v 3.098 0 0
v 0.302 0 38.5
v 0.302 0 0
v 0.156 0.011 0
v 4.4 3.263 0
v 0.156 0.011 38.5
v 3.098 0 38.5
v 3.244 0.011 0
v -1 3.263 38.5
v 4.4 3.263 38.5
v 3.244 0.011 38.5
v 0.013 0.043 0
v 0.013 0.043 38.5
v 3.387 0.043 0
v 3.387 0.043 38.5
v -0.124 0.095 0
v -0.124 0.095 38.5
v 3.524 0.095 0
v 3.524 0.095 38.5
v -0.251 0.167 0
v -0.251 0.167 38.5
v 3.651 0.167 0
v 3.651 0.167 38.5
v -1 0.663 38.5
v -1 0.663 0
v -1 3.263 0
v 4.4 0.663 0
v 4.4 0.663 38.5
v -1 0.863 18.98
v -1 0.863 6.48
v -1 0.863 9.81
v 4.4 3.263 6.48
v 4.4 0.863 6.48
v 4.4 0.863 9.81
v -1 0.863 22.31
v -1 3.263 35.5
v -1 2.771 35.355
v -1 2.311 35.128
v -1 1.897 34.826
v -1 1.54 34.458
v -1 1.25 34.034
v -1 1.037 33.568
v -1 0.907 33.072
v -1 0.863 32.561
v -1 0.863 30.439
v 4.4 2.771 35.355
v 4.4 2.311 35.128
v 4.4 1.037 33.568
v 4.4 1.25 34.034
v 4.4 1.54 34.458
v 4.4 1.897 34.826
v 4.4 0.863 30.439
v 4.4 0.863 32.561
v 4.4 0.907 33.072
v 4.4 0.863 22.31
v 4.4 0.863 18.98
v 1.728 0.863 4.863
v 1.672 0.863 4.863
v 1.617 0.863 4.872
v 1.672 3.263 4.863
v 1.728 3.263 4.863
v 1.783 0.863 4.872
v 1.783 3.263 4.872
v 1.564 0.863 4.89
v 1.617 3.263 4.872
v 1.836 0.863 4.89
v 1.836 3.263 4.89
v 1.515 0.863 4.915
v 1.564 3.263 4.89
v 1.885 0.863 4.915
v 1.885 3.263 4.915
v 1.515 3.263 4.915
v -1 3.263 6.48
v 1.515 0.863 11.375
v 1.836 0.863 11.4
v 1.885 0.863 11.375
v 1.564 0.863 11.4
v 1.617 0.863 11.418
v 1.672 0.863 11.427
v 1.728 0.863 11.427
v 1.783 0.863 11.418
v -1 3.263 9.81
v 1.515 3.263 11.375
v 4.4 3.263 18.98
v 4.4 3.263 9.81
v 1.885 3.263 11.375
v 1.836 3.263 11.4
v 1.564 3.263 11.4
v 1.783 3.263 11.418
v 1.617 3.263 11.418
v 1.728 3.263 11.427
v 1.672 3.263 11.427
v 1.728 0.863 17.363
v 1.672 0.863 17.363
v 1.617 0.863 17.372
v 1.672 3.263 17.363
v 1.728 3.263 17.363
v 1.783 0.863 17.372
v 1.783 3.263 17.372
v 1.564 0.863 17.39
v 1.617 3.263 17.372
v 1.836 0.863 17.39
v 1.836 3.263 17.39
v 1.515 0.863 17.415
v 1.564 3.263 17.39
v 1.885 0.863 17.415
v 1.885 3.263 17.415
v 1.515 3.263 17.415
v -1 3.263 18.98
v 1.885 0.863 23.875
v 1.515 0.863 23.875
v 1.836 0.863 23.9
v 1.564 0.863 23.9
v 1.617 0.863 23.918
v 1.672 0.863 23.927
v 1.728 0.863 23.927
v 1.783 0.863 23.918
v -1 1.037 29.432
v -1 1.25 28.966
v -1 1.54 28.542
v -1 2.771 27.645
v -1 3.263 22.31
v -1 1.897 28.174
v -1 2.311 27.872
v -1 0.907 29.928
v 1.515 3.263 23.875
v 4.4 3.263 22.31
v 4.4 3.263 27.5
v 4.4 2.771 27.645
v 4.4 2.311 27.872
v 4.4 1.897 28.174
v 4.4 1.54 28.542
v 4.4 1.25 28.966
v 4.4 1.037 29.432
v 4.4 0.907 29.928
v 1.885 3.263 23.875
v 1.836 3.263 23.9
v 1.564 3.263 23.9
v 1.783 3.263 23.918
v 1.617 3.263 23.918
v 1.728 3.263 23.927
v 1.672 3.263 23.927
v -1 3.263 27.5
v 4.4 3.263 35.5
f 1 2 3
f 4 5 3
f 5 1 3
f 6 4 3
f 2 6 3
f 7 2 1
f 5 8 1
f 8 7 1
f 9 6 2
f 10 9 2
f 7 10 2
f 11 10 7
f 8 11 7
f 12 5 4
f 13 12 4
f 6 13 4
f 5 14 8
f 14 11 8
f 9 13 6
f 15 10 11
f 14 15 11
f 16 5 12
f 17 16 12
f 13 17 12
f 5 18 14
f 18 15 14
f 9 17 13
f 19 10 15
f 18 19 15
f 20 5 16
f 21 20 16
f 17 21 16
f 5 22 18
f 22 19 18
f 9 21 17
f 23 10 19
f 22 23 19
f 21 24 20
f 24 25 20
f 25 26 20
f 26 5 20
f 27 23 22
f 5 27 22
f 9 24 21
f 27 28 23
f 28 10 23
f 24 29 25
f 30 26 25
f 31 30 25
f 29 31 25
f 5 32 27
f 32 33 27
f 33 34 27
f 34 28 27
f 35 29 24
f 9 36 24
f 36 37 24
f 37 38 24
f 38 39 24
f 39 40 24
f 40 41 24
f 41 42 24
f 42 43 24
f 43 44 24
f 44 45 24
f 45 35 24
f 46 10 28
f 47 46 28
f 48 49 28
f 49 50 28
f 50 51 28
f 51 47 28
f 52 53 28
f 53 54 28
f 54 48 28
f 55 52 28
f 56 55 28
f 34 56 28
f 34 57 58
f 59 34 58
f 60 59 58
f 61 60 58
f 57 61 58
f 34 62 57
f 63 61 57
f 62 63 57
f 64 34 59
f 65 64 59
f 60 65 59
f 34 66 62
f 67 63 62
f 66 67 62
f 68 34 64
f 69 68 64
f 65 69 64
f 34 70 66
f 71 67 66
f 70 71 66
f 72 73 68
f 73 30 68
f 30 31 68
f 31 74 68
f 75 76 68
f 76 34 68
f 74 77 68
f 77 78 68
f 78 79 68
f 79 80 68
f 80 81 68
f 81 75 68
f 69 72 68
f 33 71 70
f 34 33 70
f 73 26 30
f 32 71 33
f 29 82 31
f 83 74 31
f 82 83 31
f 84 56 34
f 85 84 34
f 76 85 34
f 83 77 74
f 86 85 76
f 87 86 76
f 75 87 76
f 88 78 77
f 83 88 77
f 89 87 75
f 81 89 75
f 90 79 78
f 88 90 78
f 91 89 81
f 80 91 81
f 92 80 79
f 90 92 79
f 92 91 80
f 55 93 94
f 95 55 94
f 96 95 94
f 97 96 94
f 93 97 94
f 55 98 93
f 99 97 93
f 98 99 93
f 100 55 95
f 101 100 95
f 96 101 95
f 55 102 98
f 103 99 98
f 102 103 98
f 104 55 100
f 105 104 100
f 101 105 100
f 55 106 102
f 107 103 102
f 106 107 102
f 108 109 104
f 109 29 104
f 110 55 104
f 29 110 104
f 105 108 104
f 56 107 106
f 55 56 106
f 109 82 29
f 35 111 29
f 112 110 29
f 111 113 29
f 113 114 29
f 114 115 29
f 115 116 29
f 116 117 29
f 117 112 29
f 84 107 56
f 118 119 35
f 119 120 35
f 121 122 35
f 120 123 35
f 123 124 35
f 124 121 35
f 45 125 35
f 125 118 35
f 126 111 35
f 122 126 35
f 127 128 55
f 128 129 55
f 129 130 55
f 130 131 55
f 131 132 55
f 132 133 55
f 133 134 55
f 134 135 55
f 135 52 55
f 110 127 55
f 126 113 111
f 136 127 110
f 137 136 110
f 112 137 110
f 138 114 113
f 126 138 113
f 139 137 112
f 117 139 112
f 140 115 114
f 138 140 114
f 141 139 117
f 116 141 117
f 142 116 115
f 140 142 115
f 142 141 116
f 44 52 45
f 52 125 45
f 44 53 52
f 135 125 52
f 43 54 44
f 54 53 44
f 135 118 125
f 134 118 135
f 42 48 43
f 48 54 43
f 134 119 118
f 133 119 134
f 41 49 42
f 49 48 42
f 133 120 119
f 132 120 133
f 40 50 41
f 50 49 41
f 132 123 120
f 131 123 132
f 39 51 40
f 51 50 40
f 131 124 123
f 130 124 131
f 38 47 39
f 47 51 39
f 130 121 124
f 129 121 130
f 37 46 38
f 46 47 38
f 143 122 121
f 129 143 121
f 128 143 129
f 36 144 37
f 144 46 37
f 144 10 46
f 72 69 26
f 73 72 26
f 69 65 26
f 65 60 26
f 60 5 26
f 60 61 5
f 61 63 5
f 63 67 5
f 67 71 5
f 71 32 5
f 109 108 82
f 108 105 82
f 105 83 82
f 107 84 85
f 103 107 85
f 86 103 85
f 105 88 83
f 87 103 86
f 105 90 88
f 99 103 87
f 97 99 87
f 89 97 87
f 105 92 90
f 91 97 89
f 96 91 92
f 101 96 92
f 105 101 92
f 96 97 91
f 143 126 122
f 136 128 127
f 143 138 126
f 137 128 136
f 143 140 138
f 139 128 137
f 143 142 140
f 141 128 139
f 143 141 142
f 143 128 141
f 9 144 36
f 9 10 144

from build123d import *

# Parameters (mm, degrees)
BOSS_EXTRUDE1_DEPTH = 38.5
FILLET3_R           = 1
FILLET4_R           = 1
CUT_EXTRUDE1_DEPTH  = 2.4
LPATTERN1_COUNT     = 2
LPATTERN1_PITCH     = 12.5
SKETCH3_W           = 5.4
SKETCH3_H           = 8
CUT_EXTRUDE2_DEPTH  = 2.4
FILLET5_R           = 3
FILLET6_R           = 0.35


with BuildPart() as part:
    # Sketch1 → Boss-Extrude1 (new body)
    with BuildSketch(Plane.XY):
        Polygon((0, 0), (3.4, 0), (4.4, 0.663324958), (4.4, 3.263324958), (-1, 3.263324958), (-1, 0.663324958), align=None)
    extrude(amount=BOSS_EXTRUDE1_DEPTH)

    # Fillet3
    fillet3_edges = [part.edges().sort_by_distance(p)[0] for p in [
        (3.4, 0, 19.25),
    ]]
    fillet(fillet3_edges, radius=FILLET3_R)

    # Fillet4
    fillet4_edges = [part.edges().sort_by_distance(p)[0] for p in [
        (0, 0, 19.25),
    ]]
    fillet(fillet4_edges, radius=FILLET4_R)

    # Sketch2 → Cut-Extrude1 (cut)
    with BuildSketch(Plane(origin=(0, 3.263324958, 0), x_dir=(1, 0, 0), z_dir=(0, 1, 0))):
        Polygon((4.4, -9.81), (4.4, -6.48), (1.7, -4.8), (-1, -6.48), (-1, -9.81), (1.7, -11.49), align=None)
    cut_extrude1 = extrude(amount=-CUT_EXTRUDE1_DEPTH, mode=Mode.SUBTRACT)

    # LPattern1: Cut-Extrude1 ×2
    with Locations(*[(0, 0, i * LPATTERN1_PITCH) for i in range(1, LPATTERN1_COUNT)]):
        add(cut_extrude1, mode=Mode.SUBTRACT)

    # Sketch3 → Cut-Extrude2 (cut)
    with BuildSketch(Plane(origin=(0, 3.263324958, 0), x_dir=(1, 0, 0), z_dir=(0, 1, 0))):
        with Locations((1.7, -31.5)):
            Rectangle(SKETCH3_W, SKETCH3_H)
    extrude(amount=-CUT_EXTRUDE2_DEPTH, mode=Mode.SUBTRACT)

    # Fillet5
    # the kernel refuses this fillet: 3 mm, written as the material it adds along each edge
    with BuildSketch(Plane(origin=(4.4, 0.863324958, 27.5), x_dir=(0, 0, 1), z_dir=(-1, 0, 0))) as fillet5_piece_1:
        with BuildLine():
            CenterArc((2.939387691, 3), FILLET5_R, 191.536959033, 78.463040967)
            Line((0, 2.4), (-0.058787754, 2.388))
            ThreePointArc((-0.058787754, 2.388), (-0.06, 1.2), (-0.06, 0))
            Line((-0.06, 0), (0, -0.06))
            Line((0, -0.06), (2.939387691, -0.06))
            Line((2.939387691, -0.06), (2.939387691, 0))
        make_face()
    extrude(amount=5.4)
    with BuildSketch(Plane(origin=(-1, 0.863324958, 35.5), x_dir=(0, 1.0, -1.5483910450100627e-12), z_dir=(1, 0, 0))) as fillet5_piece_2:
        with BuildLine():
            CenterArc((3, -2.939387691), FILLET5_R, 101.536959033, 78.463040967)
            Line((0, -2.939387691), (-0.06, -2.939387691))
            Line((-0.06, -2.939387691), (-0.06, 0))
            Line((-0.06, 0), (0, 0.06))
            ThreePointArc((0, 0.06), (1.2, 0.06), (2.388, 0.058787754))
            Line((2.388, 0.058787754), (2.4, 0))
        make_face()
    extrude(amount=5.4)

    # Fillet6
    fillet6_edges = [part.edges().sort_by_distance(p)[0] for p in [
        (1.7, 2.063324958, 11.49),
        (1.7, 2.063324958, 4.8),
        (1.7, 2.063324958, 23.99),
        (1.7, 2.063324958, 17.3),
    ]]
    fillet(fillet6_edges, radius=FILLET6_R)


solid = part.part
